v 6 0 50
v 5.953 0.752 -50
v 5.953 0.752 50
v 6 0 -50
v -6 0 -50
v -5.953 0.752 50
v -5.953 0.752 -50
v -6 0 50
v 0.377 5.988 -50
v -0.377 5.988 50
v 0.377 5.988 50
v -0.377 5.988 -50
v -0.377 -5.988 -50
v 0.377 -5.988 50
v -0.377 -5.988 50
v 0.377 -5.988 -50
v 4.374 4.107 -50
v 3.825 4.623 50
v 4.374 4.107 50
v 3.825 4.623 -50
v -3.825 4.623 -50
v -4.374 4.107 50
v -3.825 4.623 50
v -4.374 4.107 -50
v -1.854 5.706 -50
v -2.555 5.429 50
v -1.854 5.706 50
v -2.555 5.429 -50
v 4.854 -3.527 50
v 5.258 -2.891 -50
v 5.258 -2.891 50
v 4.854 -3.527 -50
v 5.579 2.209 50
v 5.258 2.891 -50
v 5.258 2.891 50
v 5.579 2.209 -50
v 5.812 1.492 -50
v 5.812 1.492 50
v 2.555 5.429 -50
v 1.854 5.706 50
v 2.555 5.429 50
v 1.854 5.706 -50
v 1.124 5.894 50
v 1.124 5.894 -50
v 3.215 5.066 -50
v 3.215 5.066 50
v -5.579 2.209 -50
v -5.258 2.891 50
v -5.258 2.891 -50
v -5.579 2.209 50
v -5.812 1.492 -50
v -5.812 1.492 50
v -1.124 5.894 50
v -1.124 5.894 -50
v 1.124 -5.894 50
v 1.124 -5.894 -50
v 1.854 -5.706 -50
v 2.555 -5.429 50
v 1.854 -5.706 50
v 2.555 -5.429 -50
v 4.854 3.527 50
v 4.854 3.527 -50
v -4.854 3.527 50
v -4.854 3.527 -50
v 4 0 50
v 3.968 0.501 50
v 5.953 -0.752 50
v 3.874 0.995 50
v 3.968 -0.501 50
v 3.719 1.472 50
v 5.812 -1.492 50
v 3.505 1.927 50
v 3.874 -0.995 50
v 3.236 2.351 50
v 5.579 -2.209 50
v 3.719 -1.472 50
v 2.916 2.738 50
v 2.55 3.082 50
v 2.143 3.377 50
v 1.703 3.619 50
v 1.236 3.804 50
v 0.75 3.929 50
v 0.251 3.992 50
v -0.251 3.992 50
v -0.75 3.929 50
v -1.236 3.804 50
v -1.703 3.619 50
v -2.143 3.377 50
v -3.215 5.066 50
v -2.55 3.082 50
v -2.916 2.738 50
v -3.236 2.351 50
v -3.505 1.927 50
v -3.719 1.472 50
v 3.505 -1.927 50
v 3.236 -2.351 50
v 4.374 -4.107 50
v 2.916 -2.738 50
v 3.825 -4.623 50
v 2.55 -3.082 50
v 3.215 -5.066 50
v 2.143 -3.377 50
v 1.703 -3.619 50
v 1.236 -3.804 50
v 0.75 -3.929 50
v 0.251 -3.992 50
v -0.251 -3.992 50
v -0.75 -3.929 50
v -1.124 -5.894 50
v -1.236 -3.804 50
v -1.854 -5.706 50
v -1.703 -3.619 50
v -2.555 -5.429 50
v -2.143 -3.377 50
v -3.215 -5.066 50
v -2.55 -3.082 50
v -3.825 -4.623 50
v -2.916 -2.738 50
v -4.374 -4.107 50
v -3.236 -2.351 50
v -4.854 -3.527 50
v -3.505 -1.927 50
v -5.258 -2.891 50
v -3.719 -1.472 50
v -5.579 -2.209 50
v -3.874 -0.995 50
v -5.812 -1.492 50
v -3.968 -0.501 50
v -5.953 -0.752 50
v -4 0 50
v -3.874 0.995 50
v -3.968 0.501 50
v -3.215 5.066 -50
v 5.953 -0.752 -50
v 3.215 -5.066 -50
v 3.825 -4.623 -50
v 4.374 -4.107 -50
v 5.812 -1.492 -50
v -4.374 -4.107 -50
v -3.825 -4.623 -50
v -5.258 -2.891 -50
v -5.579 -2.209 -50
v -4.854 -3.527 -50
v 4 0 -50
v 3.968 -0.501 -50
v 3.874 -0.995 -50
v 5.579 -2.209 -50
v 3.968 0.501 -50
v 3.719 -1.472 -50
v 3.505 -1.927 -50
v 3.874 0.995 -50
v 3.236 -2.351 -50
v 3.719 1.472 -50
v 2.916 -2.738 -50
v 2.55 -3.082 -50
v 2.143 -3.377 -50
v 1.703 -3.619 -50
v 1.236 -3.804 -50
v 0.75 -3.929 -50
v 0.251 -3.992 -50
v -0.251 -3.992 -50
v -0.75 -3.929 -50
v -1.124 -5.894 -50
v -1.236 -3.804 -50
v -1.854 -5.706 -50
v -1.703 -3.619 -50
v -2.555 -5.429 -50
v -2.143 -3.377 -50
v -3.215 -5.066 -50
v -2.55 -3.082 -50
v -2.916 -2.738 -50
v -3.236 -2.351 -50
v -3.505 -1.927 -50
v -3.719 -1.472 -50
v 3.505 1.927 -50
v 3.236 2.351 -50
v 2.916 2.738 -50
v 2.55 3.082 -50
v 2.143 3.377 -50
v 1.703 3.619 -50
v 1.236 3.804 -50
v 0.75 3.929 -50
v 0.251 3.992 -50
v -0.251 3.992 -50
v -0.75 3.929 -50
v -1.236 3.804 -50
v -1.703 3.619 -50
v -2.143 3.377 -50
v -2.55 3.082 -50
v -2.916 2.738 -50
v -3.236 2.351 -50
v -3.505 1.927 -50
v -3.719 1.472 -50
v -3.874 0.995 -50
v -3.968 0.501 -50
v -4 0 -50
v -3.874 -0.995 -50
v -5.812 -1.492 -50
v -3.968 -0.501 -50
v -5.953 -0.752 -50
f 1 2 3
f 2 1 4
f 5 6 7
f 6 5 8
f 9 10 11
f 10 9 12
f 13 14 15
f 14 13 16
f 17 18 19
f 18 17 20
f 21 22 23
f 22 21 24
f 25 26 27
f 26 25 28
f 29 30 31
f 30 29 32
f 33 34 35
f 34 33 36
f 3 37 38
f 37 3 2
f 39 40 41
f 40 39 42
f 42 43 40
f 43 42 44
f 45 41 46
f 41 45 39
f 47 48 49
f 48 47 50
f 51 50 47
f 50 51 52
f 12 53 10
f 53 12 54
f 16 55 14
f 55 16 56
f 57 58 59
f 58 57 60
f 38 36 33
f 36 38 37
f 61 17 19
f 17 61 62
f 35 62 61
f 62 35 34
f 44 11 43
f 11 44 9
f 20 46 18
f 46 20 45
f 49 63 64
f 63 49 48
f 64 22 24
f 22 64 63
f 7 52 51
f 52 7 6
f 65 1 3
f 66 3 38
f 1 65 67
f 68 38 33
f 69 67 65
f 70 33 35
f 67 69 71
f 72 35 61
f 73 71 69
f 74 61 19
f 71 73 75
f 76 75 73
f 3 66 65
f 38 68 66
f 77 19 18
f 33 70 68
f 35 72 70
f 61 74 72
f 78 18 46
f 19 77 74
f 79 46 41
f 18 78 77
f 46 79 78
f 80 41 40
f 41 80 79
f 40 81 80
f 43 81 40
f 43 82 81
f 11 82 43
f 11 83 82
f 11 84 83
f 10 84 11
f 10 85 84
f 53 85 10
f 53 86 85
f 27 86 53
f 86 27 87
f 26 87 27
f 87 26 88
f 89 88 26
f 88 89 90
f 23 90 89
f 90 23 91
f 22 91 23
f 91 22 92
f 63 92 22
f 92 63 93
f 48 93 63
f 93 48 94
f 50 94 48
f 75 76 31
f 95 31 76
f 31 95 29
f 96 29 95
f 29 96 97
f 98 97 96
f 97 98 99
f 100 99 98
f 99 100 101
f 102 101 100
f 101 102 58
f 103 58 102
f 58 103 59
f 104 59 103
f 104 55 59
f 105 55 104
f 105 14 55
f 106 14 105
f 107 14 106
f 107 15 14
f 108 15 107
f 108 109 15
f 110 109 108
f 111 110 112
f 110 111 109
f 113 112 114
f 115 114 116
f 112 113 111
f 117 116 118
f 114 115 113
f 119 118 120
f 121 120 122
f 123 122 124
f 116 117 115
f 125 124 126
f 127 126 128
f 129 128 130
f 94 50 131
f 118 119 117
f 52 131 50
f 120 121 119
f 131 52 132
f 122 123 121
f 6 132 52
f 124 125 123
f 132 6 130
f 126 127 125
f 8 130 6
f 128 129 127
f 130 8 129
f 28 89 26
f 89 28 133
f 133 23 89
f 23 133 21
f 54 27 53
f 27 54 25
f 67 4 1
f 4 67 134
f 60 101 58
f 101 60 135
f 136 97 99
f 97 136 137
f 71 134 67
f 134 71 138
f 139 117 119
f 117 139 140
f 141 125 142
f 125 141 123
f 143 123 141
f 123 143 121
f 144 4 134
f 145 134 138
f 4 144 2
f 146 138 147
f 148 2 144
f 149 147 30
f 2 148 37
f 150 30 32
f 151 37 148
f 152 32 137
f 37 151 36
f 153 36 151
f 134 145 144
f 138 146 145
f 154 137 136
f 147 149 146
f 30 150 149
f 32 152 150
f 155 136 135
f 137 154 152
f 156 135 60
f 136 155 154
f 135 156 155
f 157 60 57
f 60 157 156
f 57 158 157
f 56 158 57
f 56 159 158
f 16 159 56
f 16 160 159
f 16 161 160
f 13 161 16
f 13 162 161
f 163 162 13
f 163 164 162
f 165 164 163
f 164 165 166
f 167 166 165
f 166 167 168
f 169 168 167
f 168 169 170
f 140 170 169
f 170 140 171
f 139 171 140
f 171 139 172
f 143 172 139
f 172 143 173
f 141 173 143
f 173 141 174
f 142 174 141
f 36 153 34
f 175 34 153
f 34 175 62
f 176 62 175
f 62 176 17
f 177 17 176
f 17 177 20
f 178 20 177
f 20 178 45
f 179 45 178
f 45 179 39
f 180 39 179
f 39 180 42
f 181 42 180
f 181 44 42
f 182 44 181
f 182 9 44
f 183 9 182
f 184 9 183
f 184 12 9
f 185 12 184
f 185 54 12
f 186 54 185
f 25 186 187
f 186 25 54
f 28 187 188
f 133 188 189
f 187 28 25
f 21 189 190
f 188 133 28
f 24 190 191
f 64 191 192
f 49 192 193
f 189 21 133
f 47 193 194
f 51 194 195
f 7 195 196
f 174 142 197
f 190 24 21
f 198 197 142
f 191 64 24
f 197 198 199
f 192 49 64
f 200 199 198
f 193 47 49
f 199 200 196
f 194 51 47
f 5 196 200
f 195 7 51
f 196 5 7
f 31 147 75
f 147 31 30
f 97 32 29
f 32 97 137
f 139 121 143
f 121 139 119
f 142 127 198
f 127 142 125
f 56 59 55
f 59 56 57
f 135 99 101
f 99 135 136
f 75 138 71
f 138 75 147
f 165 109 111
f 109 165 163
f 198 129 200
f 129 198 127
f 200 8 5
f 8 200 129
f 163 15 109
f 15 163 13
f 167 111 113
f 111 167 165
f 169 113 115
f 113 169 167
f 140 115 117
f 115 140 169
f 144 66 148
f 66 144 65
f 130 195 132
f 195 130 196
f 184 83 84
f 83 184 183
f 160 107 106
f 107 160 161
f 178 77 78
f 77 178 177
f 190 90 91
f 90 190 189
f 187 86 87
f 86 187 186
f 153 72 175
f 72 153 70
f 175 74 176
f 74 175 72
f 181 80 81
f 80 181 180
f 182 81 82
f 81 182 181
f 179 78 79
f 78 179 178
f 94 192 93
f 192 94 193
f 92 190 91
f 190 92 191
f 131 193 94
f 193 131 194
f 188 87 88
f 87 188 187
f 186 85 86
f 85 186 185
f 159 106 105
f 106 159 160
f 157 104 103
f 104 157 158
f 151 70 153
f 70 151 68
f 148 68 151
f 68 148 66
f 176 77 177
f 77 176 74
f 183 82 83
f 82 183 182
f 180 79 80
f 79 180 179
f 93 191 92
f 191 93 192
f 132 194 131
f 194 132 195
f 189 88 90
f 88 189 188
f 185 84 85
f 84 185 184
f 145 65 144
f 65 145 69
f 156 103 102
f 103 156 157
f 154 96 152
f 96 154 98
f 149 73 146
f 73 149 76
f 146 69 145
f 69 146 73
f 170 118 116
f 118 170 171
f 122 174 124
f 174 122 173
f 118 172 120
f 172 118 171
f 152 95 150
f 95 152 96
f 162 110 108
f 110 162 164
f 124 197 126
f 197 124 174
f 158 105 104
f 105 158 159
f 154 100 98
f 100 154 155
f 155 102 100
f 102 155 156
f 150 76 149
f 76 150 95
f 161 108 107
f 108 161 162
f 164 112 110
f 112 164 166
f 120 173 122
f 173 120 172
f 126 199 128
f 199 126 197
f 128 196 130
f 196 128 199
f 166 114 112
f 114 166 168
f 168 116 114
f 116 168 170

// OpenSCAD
$fn = 50;


difference() {
	union() {
		translate(v = [0, 0, -50.0000000000]) {
			cylinder(h = 100, r = 6.0000000000);
		}
	}
	union() {
		translate(v = [0, 0, -100.0000000000]) {
			cylinder(h = 200, r = 4.0000000000);
		}
	}
}
